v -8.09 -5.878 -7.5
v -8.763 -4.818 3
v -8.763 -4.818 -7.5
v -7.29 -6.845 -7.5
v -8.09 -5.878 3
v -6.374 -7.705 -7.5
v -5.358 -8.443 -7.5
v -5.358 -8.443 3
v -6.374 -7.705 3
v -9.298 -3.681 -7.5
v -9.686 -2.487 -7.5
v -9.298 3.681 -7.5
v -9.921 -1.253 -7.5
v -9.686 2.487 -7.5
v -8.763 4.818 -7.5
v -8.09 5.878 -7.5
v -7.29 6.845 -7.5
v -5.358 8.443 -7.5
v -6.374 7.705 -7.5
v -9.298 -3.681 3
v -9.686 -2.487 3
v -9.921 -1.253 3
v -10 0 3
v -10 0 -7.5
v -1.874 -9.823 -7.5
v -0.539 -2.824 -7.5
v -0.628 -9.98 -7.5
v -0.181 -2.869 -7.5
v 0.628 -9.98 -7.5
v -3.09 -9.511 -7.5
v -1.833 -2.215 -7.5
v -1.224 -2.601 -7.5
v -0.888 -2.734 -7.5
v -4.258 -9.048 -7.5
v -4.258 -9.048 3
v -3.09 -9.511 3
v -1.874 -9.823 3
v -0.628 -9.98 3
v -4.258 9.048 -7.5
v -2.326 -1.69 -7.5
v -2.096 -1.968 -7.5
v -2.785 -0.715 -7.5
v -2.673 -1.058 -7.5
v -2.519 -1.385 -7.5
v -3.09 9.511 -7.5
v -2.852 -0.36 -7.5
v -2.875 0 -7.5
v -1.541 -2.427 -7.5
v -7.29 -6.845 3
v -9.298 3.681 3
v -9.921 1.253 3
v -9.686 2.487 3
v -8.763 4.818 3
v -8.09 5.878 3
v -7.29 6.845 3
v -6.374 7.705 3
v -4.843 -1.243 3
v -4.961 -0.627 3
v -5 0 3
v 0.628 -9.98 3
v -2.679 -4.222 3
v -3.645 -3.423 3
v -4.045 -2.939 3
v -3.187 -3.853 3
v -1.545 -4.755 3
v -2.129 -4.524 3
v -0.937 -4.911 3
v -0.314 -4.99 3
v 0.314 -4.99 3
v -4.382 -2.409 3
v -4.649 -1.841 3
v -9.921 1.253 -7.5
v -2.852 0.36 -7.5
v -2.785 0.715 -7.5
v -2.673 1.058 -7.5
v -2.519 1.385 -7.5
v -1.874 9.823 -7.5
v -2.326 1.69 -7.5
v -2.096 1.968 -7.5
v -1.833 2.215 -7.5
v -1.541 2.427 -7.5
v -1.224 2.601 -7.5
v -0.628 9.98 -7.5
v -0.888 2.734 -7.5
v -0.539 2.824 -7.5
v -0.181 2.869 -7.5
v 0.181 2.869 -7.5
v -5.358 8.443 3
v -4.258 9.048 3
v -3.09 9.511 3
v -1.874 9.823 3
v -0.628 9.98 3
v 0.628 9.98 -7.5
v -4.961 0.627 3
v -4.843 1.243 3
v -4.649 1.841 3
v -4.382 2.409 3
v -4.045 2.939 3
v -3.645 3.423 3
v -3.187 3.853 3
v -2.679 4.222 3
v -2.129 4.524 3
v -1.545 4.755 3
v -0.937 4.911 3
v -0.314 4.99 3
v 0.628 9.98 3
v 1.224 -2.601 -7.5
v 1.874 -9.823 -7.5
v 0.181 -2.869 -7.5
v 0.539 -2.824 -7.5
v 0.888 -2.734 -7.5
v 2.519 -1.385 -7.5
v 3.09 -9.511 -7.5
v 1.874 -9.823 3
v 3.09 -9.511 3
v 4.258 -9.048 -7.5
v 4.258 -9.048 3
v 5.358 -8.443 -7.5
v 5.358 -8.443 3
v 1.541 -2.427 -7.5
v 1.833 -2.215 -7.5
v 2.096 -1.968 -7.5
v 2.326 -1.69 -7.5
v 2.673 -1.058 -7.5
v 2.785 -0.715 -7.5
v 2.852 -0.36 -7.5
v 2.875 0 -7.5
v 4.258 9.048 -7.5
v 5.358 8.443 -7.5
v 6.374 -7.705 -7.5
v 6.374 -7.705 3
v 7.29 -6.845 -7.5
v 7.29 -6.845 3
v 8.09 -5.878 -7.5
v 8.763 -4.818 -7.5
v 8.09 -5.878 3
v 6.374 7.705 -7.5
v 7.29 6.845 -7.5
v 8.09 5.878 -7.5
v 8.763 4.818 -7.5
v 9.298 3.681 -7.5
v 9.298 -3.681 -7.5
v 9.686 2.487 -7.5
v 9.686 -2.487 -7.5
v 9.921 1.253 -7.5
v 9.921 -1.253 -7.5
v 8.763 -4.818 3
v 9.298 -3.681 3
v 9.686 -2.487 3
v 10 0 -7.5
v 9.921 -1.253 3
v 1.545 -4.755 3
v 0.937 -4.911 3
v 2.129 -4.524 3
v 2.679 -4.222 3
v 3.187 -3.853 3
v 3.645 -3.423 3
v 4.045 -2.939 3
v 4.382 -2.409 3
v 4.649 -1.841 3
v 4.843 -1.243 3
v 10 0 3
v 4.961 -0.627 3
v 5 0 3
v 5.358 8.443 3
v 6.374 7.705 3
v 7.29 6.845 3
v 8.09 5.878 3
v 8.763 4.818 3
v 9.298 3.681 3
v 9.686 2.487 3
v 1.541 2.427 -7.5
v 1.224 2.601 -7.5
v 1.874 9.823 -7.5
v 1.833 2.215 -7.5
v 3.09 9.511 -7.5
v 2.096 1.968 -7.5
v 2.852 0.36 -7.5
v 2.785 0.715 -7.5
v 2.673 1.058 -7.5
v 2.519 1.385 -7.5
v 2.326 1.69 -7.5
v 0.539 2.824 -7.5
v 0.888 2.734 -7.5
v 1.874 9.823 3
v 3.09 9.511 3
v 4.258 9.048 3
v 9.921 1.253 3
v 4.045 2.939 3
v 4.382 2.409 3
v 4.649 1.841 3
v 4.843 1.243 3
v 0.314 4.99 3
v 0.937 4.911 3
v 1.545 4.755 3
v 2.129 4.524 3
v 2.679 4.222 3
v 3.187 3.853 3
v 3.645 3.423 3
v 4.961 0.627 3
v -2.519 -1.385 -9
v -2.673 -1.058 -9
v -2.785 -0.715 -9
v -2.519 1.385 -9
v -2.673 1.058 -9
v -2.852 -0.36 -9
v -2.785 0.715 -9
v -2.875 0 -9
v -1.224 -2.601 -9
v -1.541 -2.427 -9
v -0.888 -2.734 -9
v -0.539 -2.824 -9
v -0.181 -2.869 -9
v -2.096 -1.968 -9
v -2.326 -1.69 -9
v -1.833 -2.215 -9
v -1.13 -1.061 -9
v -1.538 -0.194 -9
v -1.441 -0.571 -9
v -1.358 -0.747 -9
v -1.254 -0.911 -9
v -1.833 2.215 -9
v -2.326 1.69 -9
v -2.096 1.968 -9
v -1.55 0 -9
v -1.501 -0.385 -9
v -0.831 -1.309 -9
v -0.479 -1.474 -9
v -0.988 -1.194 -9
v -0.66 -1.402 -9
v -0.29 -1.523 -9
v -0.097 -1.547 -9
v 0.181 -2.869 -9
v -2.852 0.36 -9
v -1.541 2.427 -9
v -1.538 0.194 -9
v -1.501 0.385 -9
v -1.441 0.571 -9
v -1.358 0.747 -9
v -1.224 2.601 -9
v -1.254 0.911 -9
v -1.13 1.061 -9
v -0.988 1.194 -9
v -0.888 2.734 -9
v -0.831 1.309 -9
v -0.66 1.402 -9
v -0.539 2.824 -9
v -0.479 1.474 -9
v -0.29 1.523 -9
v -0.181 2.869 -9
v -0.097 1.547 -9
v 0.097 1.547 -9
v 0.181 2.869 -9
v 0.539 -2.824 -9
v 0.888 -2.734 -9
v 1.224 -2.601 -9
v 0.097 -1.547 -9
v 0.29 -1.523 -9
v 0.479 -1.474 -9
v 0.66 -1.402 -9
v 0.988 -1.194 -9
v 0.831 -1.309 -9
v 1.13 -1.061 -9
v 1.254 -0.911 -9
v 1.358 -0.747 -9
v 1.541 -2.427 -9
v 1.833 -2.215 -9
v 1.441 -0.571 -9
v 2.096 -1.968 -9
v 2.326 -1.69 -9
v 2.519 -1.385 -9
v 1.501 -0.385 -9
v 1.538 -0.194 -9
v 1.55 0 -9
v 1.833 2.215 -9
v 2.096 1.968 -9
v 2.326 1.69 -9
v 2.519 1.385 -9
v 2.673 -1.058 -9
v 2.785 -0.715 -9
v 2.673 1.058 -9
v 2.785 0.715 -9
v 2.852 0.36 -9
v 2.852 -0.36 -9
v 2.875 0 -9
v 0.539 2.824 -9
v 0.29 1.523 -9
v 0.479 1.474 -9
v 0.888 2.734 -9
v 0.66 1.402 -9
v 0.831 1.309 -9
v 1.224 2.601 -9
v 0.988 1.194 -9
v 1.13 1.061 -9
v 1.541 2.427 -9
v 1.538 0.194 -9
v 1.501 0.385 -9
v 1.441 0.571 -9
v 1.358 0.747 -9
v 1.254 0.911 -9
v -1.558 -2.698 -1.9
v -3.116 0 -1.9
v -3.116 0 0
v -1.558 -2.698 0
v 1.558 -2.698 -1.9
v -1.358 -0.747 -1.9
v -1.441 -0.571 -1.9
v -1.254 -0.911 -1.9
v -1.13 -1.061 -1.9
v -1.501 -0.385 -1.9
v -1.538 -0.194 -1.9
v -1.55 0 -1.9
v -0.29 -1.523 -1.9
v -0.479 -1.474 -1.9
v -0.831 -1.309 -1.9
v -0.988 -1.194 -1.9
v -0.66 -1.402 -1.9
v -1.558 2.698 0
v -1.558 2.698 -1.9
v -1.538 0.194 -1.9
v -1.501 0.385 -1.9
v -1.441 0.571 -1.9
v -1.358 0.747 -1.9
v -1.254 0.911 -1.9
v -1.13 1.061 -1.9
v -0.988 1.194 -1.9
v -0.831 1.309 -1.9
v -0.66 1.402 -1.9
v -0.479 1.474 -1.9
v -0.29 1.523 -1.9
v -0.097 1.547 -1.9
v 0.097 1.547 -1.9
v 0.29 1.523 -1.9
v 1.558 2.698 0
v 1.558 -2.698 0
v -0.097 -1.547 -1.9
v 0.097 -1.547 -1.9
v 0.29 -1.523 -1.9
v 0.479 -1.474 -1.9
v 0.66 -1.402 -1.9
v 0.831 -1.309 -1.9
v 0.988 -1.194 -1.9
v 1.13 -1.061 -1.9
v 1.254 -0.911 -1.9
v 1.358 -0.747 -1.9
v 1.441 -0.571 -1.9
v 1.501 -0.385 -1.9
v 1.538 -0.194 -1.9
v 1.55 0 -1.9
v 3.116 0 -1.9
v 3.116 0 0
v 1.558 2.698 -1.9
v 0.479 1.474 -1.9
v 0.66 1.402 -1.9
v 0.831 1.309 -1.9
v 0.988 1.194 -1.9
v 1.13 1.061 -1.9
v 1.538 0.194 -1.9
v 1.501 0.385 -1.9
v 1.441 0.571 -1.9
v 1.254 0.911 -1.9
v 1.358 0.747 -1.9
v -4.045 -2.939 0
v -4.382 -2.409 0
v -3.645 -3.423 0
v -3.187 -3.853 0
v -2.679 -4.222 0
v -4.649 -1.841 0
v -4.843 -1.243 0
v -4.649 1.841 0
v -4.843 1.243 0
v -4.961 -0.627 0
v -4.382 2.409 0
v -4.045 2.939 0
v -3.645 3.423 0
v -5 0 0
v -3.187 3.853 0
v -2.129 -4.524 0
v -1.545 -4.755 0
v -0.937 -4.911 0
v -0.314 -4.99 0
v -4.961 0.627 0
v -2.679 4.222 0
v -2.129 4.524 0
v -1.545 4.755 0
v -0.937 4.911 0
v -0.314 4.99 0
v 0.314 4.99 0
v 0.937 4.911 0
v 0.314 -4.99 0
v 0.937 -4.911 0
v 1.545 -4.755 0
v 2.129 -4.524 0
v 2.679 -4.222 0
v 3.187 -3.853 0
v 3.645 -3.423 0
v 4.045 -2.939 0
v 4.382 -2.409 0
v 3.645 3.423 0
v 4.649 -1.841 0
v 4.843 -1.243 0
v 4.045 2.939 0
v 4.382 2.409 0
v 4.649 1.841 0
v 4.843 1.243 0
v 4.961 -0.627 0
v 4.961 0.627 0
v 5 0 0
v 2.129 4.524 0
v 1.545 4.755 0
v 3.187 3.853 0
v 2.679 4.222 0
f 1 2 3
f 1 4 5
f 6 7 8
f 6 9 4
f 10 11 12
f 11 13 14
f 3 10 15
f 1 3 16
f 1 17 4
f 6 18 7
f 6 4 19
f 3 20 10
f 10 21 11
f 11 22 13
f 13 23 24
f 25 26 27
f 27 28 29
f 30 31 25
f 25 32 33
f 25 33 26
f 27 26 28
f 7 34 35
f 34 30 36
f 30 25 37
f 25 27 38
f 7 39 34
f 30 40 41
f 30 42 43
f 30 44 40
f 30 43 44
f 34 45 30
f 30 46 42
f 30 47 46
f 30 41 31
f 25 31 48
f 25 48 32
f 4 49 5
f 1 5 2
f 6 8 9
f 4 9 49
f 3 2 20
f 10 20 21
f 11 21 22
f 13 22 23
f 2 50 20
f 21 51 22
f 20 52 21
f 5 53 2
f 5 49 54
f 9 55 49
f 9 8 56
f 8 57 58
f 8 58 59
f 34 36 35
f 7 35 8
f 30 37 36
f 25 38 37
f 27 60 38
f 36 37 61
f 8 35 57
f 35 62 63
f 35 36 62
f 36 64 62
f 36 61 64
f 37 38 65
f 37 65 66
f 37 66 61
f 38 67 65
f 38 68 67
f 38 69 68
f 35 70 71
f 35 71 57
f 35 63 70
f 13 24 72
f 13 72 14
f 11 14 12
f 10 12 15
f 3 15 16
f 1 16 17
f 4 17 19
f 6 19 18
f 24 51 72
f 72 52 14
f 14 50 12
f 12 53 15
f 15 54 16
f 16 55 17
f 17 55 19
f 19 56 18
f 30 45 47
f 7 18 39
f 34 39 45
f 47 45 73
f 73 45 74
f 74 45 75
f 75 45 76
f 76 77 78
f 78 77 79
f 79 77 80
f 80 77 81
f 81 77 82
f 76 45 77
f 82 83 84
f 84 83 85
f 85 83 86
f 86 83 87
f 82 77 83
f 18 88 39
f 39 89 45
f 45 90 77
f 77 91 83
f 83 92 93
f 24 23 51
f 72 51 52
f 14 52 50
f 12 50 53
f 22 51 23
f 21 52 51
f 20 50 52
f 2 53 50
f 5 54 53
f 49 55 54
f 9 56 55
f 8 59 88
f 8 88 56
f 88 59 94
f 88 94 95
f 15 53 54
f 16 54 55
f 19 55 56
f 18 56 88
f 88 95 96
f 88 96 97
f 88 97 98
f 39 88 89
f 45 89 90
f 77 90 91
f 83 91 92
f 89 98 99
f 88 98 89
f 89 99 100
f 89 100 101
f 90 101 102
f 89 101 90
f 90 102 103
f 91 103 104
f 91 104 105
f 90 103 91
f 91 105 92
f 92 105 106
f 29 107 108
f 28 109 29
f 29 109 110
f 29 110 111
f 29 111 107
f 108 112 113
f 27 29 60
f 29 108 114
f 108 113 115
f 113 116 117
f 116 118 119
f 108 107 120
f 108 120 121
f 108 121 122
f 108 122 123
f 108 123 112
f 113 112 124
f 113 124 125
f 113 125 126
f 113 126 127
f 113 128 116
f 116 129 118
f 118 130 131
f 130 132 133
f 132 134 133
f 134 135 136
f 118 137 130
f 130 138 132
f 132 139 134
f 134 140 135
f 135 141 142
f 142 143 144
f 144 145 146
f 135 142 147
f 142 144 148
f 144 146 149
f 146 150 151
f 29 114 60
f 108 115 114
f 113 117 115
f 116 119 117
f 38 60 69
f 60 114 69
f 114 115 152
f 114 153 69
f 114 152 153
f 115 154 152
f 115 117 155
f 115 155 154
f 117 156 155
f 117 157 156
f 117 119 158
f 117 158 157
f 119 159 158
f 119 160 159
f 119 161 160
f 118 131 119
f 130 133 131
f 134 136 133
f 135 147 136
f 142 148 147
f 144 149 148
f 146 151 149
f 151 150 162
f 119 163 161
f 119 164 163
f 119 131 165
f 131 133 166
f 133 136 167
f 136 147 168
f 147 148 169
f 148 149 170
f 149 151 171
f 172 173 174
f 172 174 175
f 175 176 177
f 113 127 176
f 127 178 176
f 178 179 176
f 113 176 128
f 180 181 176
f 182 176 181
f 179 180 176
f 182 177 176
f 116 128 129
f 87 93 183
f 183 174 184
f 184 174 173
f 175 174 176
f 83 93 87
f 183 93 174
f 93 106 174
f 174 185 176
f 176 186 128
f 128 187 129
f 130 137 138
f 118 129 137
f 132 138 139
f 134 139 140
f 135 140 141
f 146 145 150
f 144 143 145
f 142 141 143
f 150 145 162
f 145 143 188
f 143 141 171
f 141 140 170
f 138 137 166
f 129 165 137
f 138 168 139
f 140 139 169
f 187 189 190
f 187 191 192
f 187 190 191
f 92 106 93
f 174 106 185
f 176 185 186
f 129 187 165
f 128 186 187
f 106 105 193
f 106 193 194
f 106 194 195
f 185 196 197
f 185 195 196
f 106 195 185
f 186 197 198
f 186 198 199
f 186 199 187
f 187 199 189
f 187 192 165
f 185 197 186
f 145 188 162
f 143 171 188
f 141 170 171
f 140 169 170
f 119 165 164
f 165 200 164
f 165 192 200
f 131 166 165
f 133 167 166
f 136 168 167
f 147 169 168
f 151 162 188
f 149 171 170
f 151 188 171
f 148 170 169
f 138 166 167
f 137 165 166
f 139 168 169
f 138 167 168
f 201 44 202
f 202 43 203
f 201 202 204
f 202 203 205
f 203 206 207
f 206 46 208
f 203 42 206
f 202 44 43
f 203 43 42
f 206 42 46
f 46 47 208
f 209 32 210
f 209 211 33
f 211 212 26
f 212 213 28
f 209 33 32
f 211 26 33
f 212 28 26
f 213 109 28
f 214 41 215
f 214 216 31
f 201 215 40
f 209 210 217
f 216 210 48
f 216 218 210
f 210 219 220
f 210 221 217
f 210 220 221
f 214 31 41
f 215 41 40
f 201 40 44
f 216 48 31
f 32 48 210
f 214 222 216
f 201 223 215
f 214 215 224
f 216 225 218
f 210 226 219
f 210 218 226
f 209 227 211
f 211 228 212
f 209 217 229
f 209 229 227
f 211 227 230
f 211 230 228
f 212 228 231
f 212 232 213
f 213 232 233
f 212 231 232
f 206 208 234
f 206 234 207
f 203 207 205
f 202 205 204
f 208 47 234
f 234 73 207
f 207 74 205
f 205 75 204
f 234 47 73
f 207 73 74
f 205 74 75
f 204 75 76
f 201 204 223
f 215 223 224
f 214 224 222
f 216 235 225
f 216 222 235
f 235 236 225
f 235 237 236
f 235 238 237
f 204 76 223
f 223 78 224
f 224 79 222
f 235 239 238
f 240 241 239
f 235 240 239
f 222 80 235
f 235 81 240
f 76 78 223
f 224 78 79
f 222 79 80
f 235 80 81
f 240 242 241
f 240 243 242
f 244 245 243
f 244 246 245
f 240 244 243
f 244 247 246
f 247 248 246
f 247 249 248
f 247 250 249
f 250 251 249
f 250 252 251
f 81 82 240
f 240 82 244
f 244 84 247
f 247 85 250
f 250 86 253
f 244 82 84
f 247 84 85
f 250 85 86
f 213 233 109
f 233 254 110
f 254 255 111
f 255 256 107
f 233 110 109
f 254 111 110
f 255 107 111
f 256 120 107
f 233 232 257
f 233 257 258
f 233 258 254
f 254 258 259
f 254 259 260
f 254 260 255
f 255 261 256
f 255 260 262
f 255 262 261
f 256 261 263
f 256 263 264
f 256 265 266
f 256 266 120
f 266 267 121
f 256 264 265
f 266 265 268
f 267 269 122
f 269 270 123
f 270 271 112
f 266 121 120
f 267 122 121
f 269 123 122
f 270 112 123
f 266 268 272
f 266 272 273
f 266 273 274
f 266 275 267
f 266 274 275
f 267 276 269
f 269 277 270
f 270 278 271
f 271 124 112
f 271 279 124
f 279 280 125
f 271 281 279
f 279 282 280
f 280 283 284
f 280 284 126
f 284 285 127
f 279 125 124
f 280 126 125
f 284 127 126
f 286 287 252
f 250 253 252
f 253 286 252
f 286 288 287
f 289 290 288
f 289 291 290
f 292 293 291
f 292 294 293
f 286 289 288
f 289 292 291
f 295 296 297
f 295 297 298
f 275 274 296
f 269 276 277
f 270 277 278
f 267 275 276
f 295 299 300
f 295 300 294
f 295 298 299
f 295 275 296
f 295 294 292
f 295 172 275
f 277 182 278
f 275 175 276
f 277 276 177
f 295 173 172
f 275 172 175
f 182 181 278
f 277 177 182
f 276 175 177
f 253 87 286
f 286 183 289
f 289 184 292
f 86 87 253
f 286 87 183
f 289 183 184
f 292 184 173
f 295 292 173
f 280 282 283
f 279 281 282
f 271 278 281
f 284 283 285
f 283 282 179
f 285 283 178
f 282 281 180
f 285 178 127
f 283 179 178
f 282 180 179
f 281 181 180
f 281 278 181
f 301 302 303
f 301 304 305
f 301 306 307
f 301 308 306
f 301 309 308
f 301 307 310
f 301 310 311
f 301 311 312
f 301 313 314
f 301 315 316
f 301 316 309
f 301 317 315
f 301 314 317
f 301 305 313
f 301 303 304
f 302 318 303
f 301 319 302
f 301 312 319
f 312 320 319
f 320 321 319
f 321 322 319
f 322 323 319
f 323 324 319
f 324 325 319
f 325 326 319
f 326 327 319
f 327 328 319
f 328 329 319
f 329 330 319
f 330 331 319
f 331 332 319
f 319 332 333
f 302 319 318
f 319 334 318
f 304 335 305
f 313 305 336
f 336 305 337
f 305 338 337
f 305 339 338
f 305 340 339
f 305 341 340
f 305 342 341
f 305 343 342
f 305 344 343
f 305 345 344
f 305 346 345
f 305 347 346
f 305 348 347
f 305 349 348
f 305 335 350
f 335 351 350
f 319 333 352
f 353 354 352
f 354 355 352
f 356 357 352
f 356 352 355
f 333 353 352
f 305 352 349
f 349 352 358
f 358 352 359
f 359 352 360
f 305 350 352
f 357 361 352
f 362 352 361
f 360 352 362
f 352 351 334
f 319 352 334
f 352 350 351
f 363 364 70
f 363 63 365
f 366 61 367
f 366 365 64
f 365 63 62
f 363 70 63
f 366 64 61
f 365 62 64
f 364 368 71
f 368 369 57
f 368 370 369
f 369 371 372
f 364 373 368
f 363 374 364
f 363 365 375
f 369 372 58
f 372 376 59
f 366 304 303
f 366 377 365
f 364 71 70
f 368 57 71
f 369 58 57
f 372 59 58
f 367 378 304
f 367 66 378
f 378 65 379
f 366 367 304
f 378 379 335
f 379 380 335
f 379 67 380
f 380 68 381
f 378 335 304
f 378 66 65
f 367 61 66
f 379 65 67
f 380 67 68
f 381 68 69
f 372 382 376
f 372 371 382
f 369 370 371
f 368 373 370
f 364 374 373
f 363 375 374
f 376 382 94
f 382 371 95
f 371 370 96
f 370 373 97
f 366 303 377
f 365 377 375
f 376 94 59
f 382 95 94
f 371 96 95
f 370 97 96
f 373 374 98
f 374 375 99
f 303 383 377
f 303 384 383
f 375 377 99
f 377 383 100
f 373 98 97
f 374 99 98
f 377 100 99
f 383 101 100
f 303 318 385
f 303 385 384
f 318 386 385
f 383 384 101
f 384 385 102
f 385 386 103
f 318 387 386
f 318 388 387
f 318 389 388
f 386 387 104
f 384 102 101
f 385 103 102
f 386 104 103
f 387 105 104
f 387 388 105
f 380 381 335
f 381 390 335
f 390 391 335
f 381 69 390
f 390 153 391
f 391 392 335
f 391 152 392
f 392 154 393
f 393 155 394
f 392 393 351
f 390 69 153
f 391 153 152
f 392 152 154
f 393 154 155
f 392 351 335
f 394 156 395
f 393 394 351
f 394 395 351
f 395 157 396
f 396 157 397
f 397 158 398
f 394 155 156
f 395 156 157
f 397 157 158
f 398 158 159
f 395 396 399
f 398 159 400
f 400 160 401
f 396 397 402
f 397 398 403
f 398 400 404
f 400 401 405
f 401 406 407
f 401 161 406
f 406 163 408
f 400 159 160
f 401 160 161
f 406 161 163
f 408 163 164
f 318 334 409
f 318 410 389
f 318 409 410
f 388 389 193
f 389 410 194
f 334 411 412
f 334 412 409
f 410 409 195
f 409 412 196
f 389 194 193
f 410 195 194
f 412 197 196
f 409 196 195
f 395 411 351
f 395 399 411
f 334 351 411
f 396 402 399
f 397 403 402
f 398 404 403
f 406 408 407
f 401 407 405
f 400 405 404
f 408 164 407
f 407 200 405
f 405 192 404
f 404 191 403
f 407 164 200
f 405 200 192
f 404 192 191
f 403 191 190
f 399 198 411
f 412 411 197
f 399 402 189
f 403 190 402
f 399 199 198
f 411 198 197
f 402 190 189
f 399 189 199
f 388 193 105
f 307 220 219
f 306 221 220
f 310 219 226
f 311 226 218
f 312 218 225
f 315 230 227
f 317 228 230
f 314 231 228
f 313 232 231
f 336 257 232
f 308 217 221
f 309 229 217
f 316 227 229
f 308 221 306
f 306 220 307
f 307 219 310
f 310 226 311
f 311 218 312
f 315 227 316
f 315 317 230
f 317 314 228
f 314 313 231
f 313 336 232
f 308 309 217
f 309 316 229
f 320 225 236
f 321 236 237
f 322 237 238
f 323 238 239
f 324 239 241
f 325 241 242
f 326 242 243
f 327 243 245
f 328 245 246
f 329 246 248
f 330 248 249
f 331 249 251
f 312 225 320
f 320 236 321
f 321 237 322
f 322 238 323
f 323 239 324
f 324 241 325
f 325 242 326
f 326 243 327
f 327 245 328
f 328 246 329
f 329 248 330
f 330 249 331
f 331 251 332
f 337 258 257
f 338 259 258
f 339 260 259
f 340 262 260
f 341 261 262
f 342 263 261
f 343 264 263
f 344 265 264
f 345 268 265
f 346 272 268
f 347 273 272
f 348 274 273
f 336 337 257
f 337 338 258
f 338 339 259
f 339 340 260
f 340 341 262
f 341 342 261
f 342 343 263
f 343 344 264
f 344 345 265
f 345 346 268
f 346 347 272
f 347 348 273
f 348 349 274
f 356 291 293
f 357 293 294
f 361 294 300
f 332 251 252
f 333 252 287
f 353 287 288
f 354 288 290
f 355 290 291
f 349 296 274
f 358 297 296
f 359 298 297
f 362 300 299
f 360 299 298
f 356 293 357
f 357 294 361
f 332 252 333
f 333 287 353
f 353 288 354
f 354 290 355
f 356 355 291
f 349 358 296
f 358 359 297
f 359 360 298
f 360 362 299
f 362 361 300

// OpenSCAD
$fn = 50;

difference() {
	union() {
		translate(v = [0, 0, -7.5]) {
			cylinder(h = 10.5, r = 10.0);
		}
		#translate(v = [0, 0, -9.0]) {
			cylinder(h = 9, r = 2.875);
		}
	}
	union() {
		translate(v = [0, 0, 0]) {
			rotate(a = [0, 0, 0]) {
				difference() {
					union() {
						translate(v = [0, 0, -1.9]) {
							linear_extrude(height = 1.9) {
								polygon(points = [[3.1158, 0.0], [1.5579000000000005, 2.698361953111554], [-1.5578999999999994, 2.6983619531115544], [-3.1158, 3.815754496783323e-16], [-1.5579000000000014, -2.6983619531115535], [1.557899999999998, -2.6983619531115552]]);
							}
						}
					}
					union();
				}
			}
		}
		#cylinder(h = 3, r = 5.0);
		#translate(v = [0, 0, -100.0]) {
			cylinder(h = 200, r = 1.55);
		}
	}
}
